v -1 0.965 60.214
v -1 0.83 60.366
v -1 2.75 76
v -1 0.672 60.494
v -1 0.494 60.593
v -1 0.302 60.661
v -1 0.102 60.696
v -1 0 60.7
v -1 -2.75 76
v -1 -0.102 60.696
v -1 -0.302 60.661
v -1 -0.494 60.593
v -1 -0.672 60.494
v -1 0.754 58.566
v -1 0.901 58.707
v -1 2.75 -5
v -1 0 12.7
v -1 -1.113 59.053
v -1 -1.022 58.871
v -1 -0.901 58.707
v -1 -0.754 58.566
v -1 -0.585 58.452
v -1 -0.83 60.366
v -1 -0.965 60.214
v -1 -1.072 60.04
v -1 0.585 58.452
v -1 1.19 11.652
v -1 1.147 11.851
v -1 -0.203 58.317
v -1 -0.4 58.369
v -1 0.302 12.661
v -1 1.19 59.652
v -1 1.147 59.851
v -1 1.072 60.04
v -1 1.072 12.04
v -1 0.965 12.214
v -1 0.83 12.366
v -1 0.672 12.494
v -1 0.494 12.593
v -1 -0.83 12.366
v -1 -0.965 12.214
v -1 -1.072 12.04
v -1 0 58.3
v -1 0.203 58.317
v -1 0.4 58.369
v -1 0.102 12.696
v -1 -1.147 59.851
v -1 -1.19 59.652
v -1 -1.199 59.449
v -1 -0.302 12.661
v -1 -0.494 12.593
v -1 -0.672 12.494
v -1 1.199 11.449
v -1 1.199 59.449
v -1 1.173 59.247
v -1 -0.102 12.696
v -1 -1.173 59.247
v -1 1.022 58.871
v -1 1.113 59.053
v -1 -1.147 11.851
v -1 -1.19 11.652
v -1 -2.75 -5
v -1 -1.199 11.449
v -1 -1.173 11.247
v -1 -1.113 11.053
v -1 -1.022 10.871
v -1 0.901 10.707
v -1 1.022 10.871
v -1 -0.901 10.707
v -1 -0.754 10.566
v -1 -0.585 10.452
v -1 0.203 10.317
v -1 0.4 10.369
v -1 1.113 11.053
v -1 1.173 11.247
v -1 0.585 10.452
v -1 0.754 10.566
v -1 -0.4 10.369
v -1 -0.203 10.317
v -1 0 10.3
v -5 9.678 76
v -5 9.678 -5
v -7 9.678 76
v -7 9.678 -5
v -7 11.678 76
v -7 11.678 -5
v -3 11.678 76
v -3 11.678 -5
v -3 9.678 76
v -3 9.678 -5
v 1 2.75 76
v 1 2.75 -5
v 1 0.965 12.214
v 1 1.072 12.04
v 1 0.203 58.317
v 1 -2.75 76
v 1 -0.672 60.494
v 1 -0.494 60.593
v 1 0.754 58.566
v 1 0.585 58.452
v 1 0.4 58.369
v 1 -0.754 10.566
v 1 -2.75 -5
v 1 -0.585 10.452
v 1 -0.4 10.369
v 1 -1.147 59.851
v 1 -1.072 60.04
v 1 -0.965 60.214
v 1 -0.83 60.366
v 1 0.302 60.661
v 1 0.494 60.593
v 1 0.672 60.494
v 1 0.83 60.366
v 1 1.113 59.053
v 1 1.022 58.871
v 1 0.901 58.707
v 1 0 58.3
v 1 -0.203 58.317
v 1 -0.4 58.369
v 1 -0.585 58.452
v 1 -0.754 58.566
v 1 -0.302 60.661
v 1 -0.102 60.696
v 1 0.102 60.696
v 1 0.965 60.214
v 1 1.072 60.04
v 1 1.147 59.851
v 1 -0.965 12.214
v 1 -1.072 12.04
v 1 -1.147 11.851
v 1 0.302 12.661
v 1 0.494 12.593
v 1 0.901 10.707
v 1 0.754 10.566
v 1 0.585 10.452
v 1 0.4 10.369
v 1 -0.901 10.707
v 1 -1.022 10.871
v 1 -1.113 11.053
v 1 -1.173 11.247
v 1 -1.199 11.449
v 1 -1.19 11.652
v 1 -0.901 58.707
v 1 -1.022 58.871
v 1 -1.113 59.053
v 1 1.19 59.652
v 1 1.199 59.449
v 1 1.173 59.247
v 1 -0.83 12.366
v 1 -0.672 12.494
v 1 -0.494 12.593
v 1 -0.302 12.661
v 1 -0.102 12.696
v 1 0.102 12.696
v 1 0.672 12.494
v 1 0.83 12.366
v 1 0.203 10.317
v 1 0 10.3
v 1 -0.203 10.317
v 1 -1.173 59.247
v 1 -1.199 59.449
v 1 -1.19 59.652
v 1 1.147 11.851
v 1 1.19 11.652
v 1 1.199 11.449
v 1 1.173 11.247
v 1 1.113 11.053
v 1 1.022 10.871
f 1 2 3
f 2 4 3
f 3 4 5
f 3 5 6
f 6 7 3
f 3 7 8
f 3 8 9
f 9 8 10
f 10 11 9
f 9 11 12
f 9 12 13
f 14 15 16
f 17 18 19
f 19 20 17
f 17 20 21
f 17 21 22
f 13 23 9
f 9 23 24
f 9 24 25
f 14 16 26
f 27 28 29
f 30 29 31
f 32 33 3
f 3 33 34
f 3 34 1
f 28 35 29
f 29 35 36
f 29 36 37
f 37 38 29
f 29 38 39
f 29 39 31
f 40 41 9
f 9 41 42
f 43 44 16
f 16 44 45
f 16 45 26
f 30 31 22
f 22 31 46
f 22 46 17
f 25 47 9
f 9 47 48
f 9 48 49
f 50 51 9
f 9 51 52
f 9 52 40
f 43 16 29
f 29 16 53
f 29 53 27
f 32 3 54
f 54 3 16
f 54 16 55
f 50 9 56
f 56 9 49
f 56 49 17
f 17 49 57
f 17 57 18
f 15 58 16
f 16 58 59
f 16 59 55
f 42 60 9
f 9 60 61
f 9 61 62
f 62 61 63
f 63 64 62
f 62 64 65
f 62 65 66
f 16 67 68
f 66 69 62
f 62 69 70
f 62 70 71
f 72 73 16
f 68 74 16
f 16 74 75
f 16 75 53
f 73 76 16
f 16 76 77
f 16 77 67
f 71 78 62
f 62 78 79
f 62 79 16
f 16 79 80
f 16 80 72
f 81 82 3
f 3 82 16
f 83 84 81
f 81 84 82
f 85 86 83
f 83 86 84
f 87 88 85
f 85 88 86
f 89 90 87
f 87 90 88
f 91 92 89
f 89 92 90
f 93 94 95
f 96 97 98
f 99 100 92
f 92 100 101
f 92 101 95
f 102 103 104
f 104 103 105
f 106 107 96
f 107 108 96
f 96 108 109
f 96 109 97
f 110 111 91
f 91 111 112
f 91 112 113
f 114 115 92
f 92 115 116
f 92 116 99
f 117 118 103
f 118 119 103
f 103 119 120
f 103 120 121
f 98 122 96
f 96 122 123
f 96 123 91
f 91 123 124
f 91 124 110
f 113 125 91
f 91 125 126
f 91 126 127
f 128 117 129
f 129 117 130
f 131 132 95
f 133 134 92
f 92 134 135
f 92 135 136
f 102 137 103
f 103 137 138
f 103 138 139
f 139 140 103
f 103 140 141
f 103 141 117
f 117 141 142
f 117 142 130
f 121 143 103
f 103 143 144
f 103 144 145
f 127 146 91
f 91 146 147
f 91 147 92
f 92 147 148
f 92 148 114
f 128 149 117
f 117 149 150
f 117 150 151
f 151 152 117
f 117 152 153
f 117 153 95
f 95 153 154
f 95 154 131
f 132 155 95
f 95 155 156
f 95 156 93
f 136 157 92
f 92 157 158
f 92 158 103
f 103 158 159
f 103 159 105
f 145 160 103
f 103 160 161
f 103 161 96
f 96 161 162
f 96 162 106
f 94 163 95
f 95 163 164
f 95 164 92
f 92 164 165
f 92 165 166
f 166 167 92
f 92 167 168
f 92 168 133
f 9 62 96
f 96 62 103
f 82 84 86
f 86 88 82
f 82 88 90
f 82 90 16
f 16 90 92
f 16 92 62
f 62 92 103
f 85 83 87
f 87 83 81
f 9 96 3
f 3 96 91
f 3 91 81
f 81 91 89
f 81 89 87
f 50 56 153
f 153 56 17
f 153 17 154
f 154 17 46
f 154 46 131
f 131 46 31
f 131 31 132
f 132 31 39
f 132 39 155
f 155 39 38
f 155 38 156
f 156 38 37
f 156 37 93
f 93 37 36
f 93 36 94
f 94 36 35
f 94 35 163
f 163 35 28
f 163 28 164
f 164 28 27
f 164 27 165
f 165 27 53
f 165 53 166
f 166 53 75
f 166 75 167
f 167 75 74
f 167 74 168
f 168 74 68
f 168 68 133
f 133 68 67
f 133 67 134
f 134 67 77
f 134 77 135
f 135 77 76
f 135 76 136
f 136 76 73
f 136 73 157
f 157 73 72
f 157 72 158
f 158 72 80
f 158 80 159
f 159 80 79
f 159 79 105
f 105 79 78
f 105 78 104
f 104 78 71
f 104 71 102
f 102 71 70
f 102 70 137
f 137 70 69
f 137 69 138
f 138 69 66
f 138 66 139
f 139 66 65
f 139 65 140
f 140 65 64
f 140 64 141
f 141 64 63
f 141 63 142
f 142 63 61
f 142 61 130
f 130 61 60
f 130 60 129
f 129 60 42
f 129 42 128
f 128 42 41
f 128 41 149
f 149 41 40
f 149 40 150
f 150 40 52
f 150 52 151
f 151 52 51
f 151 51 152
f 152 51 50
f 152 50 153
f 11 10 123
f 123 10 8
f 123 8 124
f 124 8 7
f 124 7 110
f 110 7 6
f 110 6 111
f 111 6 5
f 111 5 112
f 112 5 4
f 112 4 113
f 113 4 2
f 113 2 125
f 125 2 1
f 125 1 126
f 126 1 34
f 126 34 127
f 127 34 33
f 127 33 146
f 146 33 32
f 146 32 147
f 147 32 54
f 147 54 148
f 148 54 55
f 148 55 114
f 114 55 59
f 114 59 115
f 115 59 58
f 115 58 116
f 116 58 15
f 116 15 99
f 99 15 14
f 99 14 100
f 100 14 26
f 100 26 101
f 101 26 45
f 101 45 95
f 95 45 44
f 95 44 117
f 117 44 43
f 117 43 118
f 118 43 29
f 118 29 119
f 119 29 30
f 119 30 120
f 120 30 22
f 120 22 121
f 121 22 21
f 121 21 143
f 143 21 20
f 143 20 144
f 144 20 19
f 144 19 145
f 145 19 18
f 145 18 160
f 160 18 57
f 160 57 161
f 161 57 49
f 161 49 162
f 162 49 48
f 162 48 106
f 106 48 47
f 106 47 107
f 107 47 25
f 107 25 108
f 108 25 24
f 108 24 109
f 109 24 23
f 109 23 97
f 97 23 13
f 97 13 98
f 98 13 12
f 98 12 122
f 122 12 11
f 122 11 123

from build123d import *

# Parameters (mm, degrees)
EXTRUDE_1_DEPTH      = 76
EXTRUDE_1_DEPTH_BACK = 5
SKETCH_2_R           = 1.2
CUT_EXTRUDE_1_DEPTH  = 78.307052917


with BuildPart() as part:
    # ｽｹｯﾁ1 → ﾎﾞｽ - 押し出し1 (new, two sides: drawn at the far end of the back side and taken through both)
    with BuildSketch(Plane.XY.offset(-EXTRUDE_1_DEPTH_BACK)):
        Polygon((-5, 9.67820323), (-1, 2.75), (-1, -2.75), (1, -2.75), (1, 2.75), (-3, 9.67820323), (-3, 11.67820323), (-5, 11.67820323), (-7, 11.67820323), (-7, 9.67820323), align=None)
    extrude(amount=EXTRUDE_1_DEPTH + EXTRUDE_1_DEPTH_BACK)

    # ｽｹｯﾁ2 → ｶｯﾄ - 押し出し1 (cut, through all)
    with BuildSketch(Plane(origin=(1, 0, 0), x_dir=(0, 0, -1), z_dir=(1, 0, 0))):
        with Locations((-59.5, 0)):
            Circle(SKETCH_2_R)
        with Locations((-11.5, 0)):
            Circle(SKETCH_2_R)
    extrude(amount=-CUT_EXTRUDE_1_DEPTH, mode=Mode.SUBTRACT)


solid = part.part
